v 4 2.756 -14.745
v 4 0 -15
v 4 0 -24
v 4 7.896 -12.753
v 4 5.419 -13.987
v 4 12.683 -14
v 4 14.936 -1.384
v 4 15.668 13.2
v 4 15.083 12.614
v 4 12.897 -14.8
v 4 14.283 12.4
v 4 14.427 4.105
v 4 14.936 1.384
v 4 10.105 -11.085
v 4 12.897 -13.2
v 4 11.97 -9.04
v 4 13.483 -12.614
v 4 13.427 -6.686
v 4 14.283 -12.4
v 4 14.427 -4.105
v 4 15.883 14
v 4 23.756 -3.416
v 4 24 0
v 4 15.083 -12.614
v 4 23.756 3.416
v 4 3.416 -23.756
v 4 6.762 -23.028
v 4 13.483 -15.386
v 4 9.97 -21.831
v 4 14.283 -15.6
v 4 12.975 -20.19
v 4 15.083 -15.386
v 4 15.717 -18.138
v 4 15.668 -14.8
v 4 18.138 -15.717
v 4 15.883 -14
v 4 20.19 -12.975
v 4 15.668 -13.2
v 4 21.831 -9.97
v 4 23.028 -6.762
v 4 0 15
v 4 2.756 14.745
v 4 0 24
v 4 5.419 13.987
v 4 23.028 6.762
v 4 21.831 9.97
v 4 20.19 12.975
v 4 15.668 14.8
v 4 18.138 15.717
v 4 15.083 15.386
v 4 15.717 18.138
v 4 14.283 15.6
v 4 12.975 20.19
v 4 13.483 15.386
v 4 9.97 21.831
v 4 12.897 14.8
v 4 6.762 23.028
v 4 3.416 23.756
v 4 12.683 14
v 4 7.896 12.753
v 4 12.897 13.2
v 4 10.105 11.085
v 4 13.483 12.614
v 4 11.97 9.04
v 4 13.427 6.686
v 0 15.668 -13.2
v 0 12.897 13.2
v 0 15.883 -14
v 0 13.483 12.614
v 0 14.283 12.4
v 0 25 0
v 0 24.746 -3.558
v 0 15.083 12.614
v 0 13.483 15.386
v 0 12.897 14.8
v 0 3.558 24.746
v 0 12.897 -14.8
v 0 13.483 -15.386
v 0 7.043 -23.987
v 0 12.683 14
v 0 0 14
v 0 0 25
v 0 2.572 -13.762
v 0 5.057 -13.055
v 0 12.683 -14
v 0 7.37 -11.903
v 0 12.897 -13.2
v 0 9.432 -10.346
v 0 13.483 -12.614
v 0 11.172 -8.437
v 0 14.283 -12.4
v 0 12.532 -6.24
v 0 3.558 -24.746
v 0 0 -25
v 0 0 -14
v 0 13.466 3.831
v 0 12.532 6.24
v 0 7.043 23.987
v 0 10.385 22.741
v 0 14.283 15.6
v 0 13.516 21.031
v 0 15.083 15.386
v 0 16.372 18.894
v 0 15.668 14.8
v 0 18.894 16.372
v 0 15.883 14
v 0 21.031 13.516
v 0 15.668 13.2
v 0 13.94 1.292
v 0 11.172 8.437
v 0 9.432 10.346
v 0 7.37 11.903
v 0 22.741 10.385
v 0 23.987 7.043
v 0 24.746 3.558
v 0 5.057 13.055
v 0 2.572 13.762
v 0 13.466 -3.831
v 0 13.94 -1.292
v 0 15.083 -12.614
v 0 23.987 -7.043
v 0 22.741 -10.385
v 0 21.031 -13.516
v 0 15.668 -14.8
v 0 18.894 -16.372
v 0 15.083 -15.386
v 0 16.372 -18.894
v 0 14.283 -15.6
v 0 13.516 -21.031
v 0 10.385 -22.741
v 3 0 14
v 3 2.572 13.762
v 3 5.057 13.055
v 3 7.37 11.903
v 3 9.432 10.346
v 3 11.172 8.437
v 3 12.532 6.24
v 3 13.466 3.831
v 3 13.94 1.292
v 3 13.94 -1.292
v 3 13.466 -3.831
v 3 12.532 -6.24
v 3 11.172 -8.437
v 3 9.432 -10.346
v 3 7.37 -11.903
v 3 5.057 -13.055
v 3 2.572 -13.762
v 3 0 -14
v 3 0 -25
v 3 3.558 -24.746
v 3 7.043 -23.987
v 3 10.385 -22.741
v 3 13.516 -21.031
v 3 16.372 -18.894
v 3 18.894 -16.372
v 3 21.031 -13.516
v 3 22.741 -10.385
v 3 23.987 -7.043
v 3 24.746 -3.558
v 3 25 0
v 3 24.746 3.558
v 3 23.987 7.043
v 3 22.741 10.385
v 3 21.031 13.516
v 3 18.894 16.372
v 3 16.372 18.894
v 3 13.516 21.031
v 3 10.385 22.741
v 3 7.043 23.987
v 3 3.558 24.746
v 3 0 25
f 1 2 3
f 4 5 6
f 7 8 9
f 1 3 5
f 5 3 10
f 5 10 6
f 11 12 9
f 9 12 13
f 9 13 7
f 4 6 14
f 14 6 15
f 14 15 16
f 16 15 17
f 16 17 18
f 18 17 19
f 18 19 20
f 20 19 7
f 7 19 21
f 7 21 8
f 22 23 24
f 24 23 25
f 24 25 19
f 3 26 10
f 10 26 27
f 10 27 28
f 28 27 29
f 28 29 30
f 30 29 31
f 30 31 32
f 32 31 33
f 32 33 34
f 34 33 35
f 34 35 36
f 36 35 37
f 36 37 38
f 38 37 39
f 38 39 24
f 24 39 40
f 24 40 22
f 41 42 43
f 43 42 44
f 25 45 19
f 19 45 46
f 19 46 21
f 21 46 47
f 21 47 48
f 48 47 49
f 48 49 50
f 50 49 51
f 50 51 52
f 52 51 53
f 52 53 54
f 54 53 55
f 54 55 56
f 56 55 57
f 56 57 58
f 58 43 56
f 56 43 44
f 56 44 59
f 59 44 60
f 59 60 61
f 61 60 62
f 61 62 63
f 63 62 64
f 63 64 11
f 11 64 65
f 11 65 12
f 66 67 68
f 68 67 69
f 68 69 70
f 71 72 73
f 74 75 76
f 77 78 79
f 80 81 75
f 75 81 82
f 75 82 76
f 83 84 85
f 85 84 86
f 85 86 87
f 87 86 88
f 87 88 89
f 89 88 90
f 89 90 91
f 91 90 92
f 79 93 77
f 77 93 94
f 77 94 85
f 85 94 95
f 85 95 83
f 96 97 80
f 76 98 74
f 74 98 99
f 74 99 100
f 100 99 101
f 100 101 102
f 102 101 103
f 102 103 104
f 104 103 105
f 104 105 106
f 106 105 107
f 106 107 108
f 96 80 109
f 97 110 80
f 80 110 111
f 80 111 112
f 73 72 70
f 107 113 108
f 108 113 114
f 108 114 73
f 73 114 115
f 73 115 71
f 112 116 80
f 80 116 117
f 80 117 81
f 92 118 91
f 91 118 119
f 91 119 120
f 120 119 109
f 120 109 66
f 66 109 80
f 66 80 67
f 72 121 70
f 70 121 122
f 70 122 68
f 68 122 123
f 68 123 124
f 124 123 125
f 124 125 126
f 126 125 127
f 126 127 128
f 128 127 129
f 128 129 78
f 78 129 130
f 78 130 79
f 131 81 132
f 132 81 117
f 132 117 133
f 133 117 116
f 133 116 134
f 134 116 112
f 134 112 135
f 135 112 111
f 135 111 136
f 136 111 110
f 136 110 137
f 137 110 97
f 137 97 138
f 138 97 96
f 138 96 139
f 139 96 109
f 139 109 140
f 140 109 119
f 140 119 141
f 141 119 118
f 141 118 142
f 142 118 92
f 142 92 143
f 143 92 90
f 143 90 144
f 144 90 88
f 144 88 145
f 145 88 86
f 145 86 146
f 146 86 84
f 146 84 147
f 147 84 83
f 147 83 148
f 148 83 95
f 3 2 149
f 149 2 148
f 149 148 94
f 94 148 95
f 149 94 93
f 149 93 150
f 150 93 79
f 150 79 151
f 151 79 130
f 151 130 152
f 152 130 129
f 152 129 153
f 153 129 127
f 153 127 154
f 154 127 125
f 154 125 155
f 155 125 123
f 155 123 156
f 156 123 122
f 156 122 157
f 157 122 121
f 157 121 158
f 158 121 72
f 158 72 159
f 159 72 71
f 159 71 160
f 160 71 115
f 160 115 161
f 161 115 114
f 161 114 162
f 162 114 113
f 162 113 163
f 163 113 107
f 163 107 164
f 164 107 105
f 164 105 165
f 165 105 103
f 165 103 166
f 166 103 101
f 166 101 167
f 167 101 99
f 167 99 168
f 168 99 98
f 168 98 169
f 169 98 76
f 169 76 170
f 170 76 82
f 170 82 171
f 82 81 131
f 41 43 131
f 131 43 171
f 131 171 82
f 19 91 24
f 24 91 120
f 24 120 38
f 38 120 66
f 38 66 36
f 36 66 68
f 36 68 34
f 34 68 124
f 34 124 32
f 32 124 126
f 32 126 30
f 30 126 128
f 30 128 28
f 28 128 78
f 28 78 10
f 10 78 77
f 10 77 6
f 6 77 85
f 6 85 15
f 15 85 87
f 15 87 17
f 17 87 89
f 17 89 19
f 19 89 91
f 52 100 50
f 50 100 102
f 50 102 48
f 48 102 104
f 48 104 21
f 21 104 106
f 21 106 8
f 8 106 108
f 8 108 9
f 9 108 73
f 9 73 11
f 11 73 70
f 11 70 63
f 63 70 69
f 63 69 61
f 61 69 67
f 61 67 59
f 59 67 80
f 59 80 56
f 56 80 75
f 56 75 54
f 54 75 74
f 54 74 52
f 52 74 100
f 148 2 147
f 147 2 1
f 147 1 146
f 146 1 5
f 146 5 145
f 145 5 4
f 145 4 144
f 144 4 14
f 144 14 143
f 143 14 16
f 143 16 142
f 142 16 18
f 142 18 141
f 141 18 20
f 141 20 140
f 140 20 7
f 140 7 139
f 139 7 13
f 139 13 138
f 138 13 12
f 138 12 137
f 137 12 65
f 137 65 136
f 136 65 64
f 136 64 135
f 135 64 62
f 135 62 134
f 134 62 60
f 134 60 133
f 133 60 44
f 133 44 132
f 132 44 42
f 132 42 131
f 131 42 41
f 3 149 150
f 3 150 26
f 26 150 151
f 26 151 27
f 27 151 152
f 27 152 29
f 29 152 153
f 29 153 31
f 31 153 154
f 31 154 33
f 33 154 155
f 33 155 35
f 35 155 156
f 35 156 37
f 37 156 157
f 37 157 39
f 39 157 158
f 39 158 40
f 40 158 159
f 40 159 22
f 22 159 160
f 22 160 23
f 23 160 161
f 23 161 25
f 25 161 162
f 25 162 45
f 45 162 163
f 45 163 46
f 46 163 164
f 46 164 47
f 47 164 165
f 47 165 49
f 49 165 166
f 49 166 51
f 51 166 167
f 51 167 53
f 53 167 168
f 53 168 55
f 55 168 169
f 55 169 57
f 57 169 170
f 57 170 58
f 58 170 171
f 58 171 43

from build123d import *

# Parameters (mm, degrees)
SKETCH1_R           = 1.6
BOSS_EXTRUDE1_DEPTH = 4
CHAMFER1_SIZE       = 1


with BuildPart() as part:
    # Sketch1 → Boss-Extrude1 (new body)
    with BuildSketch(Plane(origin=(0, 0, 0), x_dir=(0, 0, -1), z_dir=(1, 0, 0))):
        with BuildLine():
            Line((14, 0), (25, 0))
            ThreePointArc((25, 0), (0, 25), (-25, 0))
            Line((-25, 0), (-14, 0))
            ThreePointArc((-14, 0), (0, 14), (14, 0))
        make_face()
        with Locations((14, 14.282856857)):
            Circle(SKETCH1_R, mode=Mode.SUBTRACT)
        with Locations((-14, 14.282856857)):
            Circle(SKETCH1_R, mode=Mode.SUBTRACT)
    extrude(amount=BOSS_EXTRUDE1_DEPTH)

    # Chamfer1
    chamfer1_edges = [part.edges().sort_by_distance(p)[0] for p in [
        (4, 25, 0),
        (4, 14, 0),
    ]]
    chamfer(chamfer1_edges, length=CHAMFER1_SIZE)


solid = part.part
